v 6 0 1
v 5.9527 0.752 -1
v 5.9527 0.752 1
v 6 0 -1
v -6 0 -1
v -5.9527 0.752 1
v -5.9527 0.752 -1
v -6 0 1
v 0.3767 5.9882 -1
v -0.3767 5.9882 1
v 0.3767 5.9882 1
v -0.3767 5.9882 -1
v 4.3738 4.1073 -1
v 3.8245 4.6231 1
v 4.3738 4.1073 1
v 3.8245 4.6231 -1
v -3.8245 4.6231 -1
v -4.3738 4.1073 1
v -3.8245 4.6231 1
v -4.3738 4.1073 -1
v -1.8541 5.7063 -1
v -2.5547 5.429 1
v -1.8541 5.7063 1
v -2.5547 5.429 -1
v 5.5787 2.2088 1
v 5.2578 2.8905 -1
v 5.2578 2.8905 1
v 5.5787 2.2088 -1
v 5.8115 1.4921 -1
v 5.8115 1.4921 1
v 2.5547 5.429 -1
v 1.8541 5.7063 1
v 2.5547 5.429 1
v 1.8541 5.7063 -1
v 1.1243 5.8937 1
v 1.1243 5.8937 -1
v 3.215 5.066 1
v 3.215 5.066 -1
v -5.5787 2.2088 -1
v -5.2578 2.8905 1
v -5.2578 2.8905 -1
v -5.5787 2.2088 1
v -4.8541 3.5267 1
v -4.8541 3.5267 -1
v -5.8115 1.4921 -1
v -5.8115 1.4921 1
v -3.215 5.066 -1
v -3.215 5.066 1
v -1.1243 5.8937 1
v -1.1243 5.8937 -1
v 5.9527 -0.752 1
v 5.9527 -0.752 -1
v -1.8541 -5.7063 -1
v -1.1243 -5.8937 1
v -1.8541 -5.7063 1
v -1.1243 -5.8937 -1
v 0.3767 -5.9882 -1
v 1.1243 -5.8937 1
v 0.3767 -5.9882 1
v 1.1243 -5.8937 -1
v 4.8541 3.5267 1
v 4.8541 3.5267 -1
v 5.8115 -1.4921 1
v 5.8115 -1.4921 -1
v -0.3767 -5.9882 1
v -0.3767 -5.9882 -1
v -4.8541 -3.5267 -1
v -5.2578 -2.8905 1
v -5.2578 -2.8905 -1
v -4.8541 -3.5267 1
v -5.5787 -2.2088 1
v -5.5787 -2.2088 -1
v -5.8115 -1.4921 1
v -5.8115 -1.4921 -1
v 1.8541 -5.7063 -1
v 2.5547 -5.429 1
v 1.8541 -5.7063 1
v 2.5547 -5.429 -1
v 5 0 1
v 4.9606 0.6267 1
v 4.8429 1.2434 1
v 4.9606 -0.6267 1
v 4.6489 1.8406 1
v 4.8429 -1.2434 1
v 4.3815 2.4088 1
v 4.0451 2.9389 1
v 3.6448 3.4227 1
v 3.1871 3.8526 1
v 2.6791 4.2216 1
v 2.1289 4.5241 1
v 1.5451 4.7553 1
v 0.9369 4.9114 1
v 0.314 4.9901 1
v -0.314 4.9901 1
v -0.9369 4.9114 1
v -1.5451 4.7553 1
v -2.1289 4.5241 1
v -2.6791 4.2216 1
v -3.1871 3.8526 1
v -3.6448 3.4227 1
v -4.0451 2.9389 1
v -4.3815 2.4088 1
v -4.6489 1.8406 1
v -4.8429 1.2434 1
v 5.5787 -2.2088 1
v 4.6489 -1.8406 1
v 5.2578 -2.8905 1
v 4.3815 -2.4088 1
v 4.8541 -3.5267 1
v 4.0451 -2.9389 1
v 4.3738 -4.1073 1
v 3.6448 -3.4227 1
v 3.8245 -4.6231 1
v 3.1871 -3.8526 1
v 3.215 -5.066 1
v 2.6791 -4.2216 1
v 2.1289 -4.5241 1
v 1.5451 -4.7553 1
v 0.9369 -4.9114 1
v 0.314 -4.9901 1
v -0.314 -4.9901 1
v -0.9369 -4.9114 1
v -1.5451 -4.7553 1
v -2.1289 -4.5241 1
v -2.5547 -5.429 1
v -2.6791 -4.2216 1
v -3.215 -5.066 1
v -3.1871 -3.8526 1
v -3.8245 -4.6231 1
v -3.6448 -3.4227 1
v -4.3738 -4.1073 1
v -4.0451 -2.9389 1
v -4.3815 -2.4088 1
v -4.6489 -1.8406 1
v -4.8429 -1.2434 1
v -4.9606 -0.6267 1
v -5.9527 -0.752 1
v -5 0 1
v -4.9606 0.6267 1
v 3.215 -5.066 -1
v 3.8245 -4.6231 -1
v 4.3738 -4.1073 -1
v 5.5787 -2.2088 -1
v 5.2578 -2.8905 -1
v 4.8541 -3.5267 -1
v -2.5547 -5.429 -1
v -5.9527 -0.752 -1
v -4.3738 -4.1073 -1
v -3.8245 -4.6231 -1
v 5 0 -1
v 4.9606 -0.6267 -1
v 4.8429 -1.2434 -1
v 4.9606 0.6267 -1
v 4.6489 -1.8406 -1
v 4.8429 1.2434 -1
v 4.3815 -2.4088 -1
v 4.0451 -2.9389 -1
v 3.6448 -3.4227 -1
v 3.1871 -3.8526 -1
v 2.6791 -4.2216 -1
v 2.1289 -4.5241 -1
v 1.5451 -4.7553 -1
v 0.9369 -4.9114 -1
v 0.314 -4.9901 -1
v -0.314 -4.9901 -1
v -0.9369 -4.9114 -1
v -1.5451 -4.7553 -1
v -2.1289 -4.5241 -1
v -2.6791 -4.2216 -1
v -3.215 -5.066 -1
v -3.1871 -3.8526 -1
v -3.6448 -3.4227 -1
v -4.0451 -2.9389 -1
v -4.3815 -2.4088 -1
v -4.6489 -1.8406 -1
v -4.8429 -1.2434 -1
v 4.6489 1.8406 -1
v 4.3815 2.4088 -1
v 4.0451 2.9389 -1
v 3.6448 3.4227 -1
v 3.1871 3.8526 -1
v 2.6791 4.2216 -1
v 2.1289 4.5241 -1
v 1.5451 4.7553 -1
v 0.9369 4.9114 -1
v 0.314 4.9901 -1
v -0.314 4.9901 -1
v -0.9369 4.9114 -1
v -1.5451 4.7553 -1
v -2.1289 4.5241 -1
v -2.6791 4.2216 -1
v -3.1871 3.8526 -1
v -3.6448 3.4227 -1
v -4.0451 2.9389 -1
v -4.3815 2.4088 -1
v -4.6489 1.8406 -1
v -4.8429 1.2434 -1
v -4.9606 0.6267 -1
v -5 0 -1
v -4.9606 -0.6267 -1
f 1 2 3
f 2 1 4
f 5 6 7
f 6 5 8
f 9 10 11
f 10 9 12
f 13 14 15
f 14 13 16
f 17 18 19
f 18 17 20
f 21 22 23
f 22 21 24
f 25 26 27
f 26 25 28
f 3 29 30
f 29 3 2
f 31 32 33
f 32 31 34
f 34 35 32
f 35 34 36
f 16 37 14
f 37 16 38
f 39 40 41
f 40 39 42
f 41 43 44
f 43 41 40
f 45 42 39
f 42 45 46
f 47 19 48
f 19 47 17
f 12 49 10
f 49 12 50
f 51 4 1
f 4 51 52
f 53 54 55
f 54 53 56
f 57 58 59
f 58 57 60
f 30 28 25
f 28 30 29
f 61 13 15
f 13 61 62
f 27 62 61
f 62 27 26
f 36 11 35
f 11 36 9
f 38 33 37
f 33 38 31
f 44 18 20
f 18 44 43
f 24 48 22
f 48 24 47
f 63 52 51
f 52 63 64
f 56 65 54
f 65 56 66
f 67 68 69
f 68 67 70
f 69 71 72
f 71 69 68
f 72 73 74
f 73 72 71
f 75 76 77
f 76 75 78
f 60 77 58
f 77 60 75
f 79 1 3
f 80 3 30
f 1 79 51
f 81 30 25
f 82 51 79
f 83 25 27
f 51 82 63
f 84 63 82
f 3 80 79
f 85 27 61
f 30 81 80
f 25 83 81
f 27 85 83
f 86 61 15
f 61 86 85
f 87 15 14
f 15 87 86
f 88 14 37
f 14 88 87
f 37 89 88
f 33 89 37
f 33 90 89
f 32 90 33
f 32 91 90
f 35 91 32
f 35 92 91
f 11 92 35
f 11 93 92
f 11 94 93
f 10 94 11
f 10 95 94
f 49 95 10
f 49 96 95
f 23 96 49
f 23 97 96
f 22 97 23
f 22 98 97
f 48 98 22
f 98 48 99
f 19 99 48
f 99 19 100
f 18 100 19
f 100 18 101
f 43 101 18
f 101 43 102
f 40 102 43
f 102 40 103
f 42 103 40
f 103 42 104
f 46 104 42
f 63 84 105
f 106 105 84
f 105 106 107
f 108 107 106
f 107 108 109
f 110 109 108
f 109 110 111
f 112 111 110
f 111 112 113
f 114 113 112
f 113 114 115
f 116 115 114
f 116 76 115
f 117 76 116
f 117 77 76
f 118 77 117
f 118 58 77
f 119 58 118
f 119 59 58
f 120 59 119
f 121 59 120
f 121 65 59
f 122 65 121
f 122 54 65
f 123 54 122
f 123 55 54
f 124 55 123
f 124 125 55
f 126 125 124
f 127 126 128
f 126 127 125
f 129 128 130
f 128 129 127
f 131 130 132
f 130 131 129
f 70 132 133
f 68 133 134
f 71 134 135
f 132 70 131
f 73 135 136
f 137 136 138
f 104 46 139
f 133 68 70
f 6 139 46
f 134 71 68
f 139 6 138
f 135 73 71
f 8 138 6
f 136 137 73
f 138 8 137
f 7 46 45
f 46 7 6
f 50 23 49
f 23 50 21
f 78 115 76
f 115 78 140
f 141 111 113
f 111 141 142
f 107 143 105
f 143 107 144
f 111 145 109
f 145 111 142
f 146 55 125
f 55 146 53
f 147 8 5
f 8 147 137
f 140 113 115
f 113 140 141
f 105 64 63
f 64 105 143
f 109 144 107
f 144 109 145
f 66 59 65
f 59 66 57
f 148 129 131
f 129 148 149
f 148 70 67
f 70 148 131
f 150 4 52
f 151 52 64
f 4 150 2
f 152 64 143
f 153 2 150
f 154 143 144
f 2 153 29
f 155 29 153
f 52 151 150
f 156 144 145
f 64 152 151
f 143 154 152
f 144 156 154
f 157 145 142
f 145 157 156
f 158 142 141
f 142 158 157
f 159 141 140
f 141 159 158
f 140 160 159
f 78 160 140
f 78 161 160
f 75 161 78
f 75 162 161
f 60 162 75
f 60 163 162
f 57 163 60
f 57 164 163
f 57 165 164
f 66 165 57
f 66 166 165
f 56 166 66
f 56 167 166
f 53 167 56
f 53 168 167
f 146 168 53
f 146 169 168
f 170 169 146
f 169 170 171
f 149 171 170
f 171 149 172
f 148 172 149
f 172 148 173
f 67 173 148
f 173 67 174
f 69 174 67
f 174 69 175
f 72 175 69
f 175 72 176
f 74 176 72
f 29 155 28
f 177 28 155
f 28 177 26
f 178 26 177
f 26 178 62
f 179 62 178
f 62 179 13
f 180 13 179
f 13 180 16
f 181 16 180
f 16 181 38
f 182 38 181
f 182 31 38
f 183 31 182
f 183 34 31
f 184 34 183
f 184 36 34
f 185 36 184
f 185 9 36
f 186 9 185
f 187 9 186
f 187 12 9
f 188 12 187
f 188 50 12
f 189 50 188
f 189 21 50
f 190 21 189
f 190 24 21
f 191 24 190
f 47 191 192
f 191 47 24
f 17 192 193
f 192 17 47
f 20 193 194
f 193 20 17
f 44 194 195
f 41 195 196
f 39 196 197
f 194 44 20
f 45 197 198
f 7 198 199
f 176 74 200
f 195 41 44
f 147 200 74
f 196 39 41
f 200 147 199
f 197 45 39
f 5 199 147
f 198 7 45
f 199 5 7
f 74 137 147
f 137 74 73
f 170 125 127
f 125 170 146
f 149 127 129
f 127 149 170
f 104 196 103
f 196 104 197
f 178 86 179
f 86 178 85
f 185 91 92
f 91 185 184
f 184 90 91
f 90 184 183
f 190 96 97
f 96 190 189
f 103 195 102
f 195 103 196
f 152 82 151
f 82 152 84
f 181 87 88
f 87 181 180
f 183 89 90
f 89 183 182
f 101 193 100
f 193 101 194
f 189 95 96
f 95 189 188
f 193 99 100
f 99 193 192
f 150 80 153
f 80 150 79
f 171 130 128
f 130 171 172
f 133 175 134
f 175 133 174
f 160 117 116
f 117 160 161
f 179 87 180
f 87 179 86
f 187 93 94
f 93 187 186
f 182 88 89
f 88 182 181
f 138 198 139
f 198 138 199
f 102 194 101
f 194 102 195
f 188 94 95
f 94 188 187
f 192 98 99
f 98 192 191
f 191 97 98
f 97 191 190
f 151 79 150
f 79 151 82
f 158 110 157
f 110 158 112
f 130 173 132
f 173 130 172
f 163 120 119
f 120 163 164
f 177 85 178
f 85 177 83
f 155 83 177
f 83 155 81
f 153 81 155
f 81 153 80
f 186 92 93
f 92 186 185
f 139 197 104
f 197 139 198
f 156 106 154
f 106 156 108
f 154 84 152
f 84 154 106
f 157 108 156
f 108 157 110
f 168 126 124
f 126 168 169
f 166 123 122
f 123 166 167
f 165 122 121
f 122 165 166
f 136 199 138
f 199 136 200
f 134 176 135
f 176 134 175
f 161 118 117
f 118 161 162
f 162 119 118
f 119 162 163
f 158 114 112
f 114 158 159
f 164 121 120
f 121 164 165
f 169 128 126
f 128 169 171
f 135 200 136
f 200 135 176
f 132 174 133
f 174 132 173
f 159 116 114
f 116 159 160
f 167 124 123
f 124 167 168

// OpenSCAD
$fn = 50;


difference() {
	union() {
		translate(v = [0, 0, -1.0000000000]) {
			cylinder(h = 2, r = 6.0000000000);
		}
	}
	union() {
		translate(v = [0, 0, -100.0000000000]) {
			cylinder(h = 200, r = 5.0000000000);
		}
	}
}
